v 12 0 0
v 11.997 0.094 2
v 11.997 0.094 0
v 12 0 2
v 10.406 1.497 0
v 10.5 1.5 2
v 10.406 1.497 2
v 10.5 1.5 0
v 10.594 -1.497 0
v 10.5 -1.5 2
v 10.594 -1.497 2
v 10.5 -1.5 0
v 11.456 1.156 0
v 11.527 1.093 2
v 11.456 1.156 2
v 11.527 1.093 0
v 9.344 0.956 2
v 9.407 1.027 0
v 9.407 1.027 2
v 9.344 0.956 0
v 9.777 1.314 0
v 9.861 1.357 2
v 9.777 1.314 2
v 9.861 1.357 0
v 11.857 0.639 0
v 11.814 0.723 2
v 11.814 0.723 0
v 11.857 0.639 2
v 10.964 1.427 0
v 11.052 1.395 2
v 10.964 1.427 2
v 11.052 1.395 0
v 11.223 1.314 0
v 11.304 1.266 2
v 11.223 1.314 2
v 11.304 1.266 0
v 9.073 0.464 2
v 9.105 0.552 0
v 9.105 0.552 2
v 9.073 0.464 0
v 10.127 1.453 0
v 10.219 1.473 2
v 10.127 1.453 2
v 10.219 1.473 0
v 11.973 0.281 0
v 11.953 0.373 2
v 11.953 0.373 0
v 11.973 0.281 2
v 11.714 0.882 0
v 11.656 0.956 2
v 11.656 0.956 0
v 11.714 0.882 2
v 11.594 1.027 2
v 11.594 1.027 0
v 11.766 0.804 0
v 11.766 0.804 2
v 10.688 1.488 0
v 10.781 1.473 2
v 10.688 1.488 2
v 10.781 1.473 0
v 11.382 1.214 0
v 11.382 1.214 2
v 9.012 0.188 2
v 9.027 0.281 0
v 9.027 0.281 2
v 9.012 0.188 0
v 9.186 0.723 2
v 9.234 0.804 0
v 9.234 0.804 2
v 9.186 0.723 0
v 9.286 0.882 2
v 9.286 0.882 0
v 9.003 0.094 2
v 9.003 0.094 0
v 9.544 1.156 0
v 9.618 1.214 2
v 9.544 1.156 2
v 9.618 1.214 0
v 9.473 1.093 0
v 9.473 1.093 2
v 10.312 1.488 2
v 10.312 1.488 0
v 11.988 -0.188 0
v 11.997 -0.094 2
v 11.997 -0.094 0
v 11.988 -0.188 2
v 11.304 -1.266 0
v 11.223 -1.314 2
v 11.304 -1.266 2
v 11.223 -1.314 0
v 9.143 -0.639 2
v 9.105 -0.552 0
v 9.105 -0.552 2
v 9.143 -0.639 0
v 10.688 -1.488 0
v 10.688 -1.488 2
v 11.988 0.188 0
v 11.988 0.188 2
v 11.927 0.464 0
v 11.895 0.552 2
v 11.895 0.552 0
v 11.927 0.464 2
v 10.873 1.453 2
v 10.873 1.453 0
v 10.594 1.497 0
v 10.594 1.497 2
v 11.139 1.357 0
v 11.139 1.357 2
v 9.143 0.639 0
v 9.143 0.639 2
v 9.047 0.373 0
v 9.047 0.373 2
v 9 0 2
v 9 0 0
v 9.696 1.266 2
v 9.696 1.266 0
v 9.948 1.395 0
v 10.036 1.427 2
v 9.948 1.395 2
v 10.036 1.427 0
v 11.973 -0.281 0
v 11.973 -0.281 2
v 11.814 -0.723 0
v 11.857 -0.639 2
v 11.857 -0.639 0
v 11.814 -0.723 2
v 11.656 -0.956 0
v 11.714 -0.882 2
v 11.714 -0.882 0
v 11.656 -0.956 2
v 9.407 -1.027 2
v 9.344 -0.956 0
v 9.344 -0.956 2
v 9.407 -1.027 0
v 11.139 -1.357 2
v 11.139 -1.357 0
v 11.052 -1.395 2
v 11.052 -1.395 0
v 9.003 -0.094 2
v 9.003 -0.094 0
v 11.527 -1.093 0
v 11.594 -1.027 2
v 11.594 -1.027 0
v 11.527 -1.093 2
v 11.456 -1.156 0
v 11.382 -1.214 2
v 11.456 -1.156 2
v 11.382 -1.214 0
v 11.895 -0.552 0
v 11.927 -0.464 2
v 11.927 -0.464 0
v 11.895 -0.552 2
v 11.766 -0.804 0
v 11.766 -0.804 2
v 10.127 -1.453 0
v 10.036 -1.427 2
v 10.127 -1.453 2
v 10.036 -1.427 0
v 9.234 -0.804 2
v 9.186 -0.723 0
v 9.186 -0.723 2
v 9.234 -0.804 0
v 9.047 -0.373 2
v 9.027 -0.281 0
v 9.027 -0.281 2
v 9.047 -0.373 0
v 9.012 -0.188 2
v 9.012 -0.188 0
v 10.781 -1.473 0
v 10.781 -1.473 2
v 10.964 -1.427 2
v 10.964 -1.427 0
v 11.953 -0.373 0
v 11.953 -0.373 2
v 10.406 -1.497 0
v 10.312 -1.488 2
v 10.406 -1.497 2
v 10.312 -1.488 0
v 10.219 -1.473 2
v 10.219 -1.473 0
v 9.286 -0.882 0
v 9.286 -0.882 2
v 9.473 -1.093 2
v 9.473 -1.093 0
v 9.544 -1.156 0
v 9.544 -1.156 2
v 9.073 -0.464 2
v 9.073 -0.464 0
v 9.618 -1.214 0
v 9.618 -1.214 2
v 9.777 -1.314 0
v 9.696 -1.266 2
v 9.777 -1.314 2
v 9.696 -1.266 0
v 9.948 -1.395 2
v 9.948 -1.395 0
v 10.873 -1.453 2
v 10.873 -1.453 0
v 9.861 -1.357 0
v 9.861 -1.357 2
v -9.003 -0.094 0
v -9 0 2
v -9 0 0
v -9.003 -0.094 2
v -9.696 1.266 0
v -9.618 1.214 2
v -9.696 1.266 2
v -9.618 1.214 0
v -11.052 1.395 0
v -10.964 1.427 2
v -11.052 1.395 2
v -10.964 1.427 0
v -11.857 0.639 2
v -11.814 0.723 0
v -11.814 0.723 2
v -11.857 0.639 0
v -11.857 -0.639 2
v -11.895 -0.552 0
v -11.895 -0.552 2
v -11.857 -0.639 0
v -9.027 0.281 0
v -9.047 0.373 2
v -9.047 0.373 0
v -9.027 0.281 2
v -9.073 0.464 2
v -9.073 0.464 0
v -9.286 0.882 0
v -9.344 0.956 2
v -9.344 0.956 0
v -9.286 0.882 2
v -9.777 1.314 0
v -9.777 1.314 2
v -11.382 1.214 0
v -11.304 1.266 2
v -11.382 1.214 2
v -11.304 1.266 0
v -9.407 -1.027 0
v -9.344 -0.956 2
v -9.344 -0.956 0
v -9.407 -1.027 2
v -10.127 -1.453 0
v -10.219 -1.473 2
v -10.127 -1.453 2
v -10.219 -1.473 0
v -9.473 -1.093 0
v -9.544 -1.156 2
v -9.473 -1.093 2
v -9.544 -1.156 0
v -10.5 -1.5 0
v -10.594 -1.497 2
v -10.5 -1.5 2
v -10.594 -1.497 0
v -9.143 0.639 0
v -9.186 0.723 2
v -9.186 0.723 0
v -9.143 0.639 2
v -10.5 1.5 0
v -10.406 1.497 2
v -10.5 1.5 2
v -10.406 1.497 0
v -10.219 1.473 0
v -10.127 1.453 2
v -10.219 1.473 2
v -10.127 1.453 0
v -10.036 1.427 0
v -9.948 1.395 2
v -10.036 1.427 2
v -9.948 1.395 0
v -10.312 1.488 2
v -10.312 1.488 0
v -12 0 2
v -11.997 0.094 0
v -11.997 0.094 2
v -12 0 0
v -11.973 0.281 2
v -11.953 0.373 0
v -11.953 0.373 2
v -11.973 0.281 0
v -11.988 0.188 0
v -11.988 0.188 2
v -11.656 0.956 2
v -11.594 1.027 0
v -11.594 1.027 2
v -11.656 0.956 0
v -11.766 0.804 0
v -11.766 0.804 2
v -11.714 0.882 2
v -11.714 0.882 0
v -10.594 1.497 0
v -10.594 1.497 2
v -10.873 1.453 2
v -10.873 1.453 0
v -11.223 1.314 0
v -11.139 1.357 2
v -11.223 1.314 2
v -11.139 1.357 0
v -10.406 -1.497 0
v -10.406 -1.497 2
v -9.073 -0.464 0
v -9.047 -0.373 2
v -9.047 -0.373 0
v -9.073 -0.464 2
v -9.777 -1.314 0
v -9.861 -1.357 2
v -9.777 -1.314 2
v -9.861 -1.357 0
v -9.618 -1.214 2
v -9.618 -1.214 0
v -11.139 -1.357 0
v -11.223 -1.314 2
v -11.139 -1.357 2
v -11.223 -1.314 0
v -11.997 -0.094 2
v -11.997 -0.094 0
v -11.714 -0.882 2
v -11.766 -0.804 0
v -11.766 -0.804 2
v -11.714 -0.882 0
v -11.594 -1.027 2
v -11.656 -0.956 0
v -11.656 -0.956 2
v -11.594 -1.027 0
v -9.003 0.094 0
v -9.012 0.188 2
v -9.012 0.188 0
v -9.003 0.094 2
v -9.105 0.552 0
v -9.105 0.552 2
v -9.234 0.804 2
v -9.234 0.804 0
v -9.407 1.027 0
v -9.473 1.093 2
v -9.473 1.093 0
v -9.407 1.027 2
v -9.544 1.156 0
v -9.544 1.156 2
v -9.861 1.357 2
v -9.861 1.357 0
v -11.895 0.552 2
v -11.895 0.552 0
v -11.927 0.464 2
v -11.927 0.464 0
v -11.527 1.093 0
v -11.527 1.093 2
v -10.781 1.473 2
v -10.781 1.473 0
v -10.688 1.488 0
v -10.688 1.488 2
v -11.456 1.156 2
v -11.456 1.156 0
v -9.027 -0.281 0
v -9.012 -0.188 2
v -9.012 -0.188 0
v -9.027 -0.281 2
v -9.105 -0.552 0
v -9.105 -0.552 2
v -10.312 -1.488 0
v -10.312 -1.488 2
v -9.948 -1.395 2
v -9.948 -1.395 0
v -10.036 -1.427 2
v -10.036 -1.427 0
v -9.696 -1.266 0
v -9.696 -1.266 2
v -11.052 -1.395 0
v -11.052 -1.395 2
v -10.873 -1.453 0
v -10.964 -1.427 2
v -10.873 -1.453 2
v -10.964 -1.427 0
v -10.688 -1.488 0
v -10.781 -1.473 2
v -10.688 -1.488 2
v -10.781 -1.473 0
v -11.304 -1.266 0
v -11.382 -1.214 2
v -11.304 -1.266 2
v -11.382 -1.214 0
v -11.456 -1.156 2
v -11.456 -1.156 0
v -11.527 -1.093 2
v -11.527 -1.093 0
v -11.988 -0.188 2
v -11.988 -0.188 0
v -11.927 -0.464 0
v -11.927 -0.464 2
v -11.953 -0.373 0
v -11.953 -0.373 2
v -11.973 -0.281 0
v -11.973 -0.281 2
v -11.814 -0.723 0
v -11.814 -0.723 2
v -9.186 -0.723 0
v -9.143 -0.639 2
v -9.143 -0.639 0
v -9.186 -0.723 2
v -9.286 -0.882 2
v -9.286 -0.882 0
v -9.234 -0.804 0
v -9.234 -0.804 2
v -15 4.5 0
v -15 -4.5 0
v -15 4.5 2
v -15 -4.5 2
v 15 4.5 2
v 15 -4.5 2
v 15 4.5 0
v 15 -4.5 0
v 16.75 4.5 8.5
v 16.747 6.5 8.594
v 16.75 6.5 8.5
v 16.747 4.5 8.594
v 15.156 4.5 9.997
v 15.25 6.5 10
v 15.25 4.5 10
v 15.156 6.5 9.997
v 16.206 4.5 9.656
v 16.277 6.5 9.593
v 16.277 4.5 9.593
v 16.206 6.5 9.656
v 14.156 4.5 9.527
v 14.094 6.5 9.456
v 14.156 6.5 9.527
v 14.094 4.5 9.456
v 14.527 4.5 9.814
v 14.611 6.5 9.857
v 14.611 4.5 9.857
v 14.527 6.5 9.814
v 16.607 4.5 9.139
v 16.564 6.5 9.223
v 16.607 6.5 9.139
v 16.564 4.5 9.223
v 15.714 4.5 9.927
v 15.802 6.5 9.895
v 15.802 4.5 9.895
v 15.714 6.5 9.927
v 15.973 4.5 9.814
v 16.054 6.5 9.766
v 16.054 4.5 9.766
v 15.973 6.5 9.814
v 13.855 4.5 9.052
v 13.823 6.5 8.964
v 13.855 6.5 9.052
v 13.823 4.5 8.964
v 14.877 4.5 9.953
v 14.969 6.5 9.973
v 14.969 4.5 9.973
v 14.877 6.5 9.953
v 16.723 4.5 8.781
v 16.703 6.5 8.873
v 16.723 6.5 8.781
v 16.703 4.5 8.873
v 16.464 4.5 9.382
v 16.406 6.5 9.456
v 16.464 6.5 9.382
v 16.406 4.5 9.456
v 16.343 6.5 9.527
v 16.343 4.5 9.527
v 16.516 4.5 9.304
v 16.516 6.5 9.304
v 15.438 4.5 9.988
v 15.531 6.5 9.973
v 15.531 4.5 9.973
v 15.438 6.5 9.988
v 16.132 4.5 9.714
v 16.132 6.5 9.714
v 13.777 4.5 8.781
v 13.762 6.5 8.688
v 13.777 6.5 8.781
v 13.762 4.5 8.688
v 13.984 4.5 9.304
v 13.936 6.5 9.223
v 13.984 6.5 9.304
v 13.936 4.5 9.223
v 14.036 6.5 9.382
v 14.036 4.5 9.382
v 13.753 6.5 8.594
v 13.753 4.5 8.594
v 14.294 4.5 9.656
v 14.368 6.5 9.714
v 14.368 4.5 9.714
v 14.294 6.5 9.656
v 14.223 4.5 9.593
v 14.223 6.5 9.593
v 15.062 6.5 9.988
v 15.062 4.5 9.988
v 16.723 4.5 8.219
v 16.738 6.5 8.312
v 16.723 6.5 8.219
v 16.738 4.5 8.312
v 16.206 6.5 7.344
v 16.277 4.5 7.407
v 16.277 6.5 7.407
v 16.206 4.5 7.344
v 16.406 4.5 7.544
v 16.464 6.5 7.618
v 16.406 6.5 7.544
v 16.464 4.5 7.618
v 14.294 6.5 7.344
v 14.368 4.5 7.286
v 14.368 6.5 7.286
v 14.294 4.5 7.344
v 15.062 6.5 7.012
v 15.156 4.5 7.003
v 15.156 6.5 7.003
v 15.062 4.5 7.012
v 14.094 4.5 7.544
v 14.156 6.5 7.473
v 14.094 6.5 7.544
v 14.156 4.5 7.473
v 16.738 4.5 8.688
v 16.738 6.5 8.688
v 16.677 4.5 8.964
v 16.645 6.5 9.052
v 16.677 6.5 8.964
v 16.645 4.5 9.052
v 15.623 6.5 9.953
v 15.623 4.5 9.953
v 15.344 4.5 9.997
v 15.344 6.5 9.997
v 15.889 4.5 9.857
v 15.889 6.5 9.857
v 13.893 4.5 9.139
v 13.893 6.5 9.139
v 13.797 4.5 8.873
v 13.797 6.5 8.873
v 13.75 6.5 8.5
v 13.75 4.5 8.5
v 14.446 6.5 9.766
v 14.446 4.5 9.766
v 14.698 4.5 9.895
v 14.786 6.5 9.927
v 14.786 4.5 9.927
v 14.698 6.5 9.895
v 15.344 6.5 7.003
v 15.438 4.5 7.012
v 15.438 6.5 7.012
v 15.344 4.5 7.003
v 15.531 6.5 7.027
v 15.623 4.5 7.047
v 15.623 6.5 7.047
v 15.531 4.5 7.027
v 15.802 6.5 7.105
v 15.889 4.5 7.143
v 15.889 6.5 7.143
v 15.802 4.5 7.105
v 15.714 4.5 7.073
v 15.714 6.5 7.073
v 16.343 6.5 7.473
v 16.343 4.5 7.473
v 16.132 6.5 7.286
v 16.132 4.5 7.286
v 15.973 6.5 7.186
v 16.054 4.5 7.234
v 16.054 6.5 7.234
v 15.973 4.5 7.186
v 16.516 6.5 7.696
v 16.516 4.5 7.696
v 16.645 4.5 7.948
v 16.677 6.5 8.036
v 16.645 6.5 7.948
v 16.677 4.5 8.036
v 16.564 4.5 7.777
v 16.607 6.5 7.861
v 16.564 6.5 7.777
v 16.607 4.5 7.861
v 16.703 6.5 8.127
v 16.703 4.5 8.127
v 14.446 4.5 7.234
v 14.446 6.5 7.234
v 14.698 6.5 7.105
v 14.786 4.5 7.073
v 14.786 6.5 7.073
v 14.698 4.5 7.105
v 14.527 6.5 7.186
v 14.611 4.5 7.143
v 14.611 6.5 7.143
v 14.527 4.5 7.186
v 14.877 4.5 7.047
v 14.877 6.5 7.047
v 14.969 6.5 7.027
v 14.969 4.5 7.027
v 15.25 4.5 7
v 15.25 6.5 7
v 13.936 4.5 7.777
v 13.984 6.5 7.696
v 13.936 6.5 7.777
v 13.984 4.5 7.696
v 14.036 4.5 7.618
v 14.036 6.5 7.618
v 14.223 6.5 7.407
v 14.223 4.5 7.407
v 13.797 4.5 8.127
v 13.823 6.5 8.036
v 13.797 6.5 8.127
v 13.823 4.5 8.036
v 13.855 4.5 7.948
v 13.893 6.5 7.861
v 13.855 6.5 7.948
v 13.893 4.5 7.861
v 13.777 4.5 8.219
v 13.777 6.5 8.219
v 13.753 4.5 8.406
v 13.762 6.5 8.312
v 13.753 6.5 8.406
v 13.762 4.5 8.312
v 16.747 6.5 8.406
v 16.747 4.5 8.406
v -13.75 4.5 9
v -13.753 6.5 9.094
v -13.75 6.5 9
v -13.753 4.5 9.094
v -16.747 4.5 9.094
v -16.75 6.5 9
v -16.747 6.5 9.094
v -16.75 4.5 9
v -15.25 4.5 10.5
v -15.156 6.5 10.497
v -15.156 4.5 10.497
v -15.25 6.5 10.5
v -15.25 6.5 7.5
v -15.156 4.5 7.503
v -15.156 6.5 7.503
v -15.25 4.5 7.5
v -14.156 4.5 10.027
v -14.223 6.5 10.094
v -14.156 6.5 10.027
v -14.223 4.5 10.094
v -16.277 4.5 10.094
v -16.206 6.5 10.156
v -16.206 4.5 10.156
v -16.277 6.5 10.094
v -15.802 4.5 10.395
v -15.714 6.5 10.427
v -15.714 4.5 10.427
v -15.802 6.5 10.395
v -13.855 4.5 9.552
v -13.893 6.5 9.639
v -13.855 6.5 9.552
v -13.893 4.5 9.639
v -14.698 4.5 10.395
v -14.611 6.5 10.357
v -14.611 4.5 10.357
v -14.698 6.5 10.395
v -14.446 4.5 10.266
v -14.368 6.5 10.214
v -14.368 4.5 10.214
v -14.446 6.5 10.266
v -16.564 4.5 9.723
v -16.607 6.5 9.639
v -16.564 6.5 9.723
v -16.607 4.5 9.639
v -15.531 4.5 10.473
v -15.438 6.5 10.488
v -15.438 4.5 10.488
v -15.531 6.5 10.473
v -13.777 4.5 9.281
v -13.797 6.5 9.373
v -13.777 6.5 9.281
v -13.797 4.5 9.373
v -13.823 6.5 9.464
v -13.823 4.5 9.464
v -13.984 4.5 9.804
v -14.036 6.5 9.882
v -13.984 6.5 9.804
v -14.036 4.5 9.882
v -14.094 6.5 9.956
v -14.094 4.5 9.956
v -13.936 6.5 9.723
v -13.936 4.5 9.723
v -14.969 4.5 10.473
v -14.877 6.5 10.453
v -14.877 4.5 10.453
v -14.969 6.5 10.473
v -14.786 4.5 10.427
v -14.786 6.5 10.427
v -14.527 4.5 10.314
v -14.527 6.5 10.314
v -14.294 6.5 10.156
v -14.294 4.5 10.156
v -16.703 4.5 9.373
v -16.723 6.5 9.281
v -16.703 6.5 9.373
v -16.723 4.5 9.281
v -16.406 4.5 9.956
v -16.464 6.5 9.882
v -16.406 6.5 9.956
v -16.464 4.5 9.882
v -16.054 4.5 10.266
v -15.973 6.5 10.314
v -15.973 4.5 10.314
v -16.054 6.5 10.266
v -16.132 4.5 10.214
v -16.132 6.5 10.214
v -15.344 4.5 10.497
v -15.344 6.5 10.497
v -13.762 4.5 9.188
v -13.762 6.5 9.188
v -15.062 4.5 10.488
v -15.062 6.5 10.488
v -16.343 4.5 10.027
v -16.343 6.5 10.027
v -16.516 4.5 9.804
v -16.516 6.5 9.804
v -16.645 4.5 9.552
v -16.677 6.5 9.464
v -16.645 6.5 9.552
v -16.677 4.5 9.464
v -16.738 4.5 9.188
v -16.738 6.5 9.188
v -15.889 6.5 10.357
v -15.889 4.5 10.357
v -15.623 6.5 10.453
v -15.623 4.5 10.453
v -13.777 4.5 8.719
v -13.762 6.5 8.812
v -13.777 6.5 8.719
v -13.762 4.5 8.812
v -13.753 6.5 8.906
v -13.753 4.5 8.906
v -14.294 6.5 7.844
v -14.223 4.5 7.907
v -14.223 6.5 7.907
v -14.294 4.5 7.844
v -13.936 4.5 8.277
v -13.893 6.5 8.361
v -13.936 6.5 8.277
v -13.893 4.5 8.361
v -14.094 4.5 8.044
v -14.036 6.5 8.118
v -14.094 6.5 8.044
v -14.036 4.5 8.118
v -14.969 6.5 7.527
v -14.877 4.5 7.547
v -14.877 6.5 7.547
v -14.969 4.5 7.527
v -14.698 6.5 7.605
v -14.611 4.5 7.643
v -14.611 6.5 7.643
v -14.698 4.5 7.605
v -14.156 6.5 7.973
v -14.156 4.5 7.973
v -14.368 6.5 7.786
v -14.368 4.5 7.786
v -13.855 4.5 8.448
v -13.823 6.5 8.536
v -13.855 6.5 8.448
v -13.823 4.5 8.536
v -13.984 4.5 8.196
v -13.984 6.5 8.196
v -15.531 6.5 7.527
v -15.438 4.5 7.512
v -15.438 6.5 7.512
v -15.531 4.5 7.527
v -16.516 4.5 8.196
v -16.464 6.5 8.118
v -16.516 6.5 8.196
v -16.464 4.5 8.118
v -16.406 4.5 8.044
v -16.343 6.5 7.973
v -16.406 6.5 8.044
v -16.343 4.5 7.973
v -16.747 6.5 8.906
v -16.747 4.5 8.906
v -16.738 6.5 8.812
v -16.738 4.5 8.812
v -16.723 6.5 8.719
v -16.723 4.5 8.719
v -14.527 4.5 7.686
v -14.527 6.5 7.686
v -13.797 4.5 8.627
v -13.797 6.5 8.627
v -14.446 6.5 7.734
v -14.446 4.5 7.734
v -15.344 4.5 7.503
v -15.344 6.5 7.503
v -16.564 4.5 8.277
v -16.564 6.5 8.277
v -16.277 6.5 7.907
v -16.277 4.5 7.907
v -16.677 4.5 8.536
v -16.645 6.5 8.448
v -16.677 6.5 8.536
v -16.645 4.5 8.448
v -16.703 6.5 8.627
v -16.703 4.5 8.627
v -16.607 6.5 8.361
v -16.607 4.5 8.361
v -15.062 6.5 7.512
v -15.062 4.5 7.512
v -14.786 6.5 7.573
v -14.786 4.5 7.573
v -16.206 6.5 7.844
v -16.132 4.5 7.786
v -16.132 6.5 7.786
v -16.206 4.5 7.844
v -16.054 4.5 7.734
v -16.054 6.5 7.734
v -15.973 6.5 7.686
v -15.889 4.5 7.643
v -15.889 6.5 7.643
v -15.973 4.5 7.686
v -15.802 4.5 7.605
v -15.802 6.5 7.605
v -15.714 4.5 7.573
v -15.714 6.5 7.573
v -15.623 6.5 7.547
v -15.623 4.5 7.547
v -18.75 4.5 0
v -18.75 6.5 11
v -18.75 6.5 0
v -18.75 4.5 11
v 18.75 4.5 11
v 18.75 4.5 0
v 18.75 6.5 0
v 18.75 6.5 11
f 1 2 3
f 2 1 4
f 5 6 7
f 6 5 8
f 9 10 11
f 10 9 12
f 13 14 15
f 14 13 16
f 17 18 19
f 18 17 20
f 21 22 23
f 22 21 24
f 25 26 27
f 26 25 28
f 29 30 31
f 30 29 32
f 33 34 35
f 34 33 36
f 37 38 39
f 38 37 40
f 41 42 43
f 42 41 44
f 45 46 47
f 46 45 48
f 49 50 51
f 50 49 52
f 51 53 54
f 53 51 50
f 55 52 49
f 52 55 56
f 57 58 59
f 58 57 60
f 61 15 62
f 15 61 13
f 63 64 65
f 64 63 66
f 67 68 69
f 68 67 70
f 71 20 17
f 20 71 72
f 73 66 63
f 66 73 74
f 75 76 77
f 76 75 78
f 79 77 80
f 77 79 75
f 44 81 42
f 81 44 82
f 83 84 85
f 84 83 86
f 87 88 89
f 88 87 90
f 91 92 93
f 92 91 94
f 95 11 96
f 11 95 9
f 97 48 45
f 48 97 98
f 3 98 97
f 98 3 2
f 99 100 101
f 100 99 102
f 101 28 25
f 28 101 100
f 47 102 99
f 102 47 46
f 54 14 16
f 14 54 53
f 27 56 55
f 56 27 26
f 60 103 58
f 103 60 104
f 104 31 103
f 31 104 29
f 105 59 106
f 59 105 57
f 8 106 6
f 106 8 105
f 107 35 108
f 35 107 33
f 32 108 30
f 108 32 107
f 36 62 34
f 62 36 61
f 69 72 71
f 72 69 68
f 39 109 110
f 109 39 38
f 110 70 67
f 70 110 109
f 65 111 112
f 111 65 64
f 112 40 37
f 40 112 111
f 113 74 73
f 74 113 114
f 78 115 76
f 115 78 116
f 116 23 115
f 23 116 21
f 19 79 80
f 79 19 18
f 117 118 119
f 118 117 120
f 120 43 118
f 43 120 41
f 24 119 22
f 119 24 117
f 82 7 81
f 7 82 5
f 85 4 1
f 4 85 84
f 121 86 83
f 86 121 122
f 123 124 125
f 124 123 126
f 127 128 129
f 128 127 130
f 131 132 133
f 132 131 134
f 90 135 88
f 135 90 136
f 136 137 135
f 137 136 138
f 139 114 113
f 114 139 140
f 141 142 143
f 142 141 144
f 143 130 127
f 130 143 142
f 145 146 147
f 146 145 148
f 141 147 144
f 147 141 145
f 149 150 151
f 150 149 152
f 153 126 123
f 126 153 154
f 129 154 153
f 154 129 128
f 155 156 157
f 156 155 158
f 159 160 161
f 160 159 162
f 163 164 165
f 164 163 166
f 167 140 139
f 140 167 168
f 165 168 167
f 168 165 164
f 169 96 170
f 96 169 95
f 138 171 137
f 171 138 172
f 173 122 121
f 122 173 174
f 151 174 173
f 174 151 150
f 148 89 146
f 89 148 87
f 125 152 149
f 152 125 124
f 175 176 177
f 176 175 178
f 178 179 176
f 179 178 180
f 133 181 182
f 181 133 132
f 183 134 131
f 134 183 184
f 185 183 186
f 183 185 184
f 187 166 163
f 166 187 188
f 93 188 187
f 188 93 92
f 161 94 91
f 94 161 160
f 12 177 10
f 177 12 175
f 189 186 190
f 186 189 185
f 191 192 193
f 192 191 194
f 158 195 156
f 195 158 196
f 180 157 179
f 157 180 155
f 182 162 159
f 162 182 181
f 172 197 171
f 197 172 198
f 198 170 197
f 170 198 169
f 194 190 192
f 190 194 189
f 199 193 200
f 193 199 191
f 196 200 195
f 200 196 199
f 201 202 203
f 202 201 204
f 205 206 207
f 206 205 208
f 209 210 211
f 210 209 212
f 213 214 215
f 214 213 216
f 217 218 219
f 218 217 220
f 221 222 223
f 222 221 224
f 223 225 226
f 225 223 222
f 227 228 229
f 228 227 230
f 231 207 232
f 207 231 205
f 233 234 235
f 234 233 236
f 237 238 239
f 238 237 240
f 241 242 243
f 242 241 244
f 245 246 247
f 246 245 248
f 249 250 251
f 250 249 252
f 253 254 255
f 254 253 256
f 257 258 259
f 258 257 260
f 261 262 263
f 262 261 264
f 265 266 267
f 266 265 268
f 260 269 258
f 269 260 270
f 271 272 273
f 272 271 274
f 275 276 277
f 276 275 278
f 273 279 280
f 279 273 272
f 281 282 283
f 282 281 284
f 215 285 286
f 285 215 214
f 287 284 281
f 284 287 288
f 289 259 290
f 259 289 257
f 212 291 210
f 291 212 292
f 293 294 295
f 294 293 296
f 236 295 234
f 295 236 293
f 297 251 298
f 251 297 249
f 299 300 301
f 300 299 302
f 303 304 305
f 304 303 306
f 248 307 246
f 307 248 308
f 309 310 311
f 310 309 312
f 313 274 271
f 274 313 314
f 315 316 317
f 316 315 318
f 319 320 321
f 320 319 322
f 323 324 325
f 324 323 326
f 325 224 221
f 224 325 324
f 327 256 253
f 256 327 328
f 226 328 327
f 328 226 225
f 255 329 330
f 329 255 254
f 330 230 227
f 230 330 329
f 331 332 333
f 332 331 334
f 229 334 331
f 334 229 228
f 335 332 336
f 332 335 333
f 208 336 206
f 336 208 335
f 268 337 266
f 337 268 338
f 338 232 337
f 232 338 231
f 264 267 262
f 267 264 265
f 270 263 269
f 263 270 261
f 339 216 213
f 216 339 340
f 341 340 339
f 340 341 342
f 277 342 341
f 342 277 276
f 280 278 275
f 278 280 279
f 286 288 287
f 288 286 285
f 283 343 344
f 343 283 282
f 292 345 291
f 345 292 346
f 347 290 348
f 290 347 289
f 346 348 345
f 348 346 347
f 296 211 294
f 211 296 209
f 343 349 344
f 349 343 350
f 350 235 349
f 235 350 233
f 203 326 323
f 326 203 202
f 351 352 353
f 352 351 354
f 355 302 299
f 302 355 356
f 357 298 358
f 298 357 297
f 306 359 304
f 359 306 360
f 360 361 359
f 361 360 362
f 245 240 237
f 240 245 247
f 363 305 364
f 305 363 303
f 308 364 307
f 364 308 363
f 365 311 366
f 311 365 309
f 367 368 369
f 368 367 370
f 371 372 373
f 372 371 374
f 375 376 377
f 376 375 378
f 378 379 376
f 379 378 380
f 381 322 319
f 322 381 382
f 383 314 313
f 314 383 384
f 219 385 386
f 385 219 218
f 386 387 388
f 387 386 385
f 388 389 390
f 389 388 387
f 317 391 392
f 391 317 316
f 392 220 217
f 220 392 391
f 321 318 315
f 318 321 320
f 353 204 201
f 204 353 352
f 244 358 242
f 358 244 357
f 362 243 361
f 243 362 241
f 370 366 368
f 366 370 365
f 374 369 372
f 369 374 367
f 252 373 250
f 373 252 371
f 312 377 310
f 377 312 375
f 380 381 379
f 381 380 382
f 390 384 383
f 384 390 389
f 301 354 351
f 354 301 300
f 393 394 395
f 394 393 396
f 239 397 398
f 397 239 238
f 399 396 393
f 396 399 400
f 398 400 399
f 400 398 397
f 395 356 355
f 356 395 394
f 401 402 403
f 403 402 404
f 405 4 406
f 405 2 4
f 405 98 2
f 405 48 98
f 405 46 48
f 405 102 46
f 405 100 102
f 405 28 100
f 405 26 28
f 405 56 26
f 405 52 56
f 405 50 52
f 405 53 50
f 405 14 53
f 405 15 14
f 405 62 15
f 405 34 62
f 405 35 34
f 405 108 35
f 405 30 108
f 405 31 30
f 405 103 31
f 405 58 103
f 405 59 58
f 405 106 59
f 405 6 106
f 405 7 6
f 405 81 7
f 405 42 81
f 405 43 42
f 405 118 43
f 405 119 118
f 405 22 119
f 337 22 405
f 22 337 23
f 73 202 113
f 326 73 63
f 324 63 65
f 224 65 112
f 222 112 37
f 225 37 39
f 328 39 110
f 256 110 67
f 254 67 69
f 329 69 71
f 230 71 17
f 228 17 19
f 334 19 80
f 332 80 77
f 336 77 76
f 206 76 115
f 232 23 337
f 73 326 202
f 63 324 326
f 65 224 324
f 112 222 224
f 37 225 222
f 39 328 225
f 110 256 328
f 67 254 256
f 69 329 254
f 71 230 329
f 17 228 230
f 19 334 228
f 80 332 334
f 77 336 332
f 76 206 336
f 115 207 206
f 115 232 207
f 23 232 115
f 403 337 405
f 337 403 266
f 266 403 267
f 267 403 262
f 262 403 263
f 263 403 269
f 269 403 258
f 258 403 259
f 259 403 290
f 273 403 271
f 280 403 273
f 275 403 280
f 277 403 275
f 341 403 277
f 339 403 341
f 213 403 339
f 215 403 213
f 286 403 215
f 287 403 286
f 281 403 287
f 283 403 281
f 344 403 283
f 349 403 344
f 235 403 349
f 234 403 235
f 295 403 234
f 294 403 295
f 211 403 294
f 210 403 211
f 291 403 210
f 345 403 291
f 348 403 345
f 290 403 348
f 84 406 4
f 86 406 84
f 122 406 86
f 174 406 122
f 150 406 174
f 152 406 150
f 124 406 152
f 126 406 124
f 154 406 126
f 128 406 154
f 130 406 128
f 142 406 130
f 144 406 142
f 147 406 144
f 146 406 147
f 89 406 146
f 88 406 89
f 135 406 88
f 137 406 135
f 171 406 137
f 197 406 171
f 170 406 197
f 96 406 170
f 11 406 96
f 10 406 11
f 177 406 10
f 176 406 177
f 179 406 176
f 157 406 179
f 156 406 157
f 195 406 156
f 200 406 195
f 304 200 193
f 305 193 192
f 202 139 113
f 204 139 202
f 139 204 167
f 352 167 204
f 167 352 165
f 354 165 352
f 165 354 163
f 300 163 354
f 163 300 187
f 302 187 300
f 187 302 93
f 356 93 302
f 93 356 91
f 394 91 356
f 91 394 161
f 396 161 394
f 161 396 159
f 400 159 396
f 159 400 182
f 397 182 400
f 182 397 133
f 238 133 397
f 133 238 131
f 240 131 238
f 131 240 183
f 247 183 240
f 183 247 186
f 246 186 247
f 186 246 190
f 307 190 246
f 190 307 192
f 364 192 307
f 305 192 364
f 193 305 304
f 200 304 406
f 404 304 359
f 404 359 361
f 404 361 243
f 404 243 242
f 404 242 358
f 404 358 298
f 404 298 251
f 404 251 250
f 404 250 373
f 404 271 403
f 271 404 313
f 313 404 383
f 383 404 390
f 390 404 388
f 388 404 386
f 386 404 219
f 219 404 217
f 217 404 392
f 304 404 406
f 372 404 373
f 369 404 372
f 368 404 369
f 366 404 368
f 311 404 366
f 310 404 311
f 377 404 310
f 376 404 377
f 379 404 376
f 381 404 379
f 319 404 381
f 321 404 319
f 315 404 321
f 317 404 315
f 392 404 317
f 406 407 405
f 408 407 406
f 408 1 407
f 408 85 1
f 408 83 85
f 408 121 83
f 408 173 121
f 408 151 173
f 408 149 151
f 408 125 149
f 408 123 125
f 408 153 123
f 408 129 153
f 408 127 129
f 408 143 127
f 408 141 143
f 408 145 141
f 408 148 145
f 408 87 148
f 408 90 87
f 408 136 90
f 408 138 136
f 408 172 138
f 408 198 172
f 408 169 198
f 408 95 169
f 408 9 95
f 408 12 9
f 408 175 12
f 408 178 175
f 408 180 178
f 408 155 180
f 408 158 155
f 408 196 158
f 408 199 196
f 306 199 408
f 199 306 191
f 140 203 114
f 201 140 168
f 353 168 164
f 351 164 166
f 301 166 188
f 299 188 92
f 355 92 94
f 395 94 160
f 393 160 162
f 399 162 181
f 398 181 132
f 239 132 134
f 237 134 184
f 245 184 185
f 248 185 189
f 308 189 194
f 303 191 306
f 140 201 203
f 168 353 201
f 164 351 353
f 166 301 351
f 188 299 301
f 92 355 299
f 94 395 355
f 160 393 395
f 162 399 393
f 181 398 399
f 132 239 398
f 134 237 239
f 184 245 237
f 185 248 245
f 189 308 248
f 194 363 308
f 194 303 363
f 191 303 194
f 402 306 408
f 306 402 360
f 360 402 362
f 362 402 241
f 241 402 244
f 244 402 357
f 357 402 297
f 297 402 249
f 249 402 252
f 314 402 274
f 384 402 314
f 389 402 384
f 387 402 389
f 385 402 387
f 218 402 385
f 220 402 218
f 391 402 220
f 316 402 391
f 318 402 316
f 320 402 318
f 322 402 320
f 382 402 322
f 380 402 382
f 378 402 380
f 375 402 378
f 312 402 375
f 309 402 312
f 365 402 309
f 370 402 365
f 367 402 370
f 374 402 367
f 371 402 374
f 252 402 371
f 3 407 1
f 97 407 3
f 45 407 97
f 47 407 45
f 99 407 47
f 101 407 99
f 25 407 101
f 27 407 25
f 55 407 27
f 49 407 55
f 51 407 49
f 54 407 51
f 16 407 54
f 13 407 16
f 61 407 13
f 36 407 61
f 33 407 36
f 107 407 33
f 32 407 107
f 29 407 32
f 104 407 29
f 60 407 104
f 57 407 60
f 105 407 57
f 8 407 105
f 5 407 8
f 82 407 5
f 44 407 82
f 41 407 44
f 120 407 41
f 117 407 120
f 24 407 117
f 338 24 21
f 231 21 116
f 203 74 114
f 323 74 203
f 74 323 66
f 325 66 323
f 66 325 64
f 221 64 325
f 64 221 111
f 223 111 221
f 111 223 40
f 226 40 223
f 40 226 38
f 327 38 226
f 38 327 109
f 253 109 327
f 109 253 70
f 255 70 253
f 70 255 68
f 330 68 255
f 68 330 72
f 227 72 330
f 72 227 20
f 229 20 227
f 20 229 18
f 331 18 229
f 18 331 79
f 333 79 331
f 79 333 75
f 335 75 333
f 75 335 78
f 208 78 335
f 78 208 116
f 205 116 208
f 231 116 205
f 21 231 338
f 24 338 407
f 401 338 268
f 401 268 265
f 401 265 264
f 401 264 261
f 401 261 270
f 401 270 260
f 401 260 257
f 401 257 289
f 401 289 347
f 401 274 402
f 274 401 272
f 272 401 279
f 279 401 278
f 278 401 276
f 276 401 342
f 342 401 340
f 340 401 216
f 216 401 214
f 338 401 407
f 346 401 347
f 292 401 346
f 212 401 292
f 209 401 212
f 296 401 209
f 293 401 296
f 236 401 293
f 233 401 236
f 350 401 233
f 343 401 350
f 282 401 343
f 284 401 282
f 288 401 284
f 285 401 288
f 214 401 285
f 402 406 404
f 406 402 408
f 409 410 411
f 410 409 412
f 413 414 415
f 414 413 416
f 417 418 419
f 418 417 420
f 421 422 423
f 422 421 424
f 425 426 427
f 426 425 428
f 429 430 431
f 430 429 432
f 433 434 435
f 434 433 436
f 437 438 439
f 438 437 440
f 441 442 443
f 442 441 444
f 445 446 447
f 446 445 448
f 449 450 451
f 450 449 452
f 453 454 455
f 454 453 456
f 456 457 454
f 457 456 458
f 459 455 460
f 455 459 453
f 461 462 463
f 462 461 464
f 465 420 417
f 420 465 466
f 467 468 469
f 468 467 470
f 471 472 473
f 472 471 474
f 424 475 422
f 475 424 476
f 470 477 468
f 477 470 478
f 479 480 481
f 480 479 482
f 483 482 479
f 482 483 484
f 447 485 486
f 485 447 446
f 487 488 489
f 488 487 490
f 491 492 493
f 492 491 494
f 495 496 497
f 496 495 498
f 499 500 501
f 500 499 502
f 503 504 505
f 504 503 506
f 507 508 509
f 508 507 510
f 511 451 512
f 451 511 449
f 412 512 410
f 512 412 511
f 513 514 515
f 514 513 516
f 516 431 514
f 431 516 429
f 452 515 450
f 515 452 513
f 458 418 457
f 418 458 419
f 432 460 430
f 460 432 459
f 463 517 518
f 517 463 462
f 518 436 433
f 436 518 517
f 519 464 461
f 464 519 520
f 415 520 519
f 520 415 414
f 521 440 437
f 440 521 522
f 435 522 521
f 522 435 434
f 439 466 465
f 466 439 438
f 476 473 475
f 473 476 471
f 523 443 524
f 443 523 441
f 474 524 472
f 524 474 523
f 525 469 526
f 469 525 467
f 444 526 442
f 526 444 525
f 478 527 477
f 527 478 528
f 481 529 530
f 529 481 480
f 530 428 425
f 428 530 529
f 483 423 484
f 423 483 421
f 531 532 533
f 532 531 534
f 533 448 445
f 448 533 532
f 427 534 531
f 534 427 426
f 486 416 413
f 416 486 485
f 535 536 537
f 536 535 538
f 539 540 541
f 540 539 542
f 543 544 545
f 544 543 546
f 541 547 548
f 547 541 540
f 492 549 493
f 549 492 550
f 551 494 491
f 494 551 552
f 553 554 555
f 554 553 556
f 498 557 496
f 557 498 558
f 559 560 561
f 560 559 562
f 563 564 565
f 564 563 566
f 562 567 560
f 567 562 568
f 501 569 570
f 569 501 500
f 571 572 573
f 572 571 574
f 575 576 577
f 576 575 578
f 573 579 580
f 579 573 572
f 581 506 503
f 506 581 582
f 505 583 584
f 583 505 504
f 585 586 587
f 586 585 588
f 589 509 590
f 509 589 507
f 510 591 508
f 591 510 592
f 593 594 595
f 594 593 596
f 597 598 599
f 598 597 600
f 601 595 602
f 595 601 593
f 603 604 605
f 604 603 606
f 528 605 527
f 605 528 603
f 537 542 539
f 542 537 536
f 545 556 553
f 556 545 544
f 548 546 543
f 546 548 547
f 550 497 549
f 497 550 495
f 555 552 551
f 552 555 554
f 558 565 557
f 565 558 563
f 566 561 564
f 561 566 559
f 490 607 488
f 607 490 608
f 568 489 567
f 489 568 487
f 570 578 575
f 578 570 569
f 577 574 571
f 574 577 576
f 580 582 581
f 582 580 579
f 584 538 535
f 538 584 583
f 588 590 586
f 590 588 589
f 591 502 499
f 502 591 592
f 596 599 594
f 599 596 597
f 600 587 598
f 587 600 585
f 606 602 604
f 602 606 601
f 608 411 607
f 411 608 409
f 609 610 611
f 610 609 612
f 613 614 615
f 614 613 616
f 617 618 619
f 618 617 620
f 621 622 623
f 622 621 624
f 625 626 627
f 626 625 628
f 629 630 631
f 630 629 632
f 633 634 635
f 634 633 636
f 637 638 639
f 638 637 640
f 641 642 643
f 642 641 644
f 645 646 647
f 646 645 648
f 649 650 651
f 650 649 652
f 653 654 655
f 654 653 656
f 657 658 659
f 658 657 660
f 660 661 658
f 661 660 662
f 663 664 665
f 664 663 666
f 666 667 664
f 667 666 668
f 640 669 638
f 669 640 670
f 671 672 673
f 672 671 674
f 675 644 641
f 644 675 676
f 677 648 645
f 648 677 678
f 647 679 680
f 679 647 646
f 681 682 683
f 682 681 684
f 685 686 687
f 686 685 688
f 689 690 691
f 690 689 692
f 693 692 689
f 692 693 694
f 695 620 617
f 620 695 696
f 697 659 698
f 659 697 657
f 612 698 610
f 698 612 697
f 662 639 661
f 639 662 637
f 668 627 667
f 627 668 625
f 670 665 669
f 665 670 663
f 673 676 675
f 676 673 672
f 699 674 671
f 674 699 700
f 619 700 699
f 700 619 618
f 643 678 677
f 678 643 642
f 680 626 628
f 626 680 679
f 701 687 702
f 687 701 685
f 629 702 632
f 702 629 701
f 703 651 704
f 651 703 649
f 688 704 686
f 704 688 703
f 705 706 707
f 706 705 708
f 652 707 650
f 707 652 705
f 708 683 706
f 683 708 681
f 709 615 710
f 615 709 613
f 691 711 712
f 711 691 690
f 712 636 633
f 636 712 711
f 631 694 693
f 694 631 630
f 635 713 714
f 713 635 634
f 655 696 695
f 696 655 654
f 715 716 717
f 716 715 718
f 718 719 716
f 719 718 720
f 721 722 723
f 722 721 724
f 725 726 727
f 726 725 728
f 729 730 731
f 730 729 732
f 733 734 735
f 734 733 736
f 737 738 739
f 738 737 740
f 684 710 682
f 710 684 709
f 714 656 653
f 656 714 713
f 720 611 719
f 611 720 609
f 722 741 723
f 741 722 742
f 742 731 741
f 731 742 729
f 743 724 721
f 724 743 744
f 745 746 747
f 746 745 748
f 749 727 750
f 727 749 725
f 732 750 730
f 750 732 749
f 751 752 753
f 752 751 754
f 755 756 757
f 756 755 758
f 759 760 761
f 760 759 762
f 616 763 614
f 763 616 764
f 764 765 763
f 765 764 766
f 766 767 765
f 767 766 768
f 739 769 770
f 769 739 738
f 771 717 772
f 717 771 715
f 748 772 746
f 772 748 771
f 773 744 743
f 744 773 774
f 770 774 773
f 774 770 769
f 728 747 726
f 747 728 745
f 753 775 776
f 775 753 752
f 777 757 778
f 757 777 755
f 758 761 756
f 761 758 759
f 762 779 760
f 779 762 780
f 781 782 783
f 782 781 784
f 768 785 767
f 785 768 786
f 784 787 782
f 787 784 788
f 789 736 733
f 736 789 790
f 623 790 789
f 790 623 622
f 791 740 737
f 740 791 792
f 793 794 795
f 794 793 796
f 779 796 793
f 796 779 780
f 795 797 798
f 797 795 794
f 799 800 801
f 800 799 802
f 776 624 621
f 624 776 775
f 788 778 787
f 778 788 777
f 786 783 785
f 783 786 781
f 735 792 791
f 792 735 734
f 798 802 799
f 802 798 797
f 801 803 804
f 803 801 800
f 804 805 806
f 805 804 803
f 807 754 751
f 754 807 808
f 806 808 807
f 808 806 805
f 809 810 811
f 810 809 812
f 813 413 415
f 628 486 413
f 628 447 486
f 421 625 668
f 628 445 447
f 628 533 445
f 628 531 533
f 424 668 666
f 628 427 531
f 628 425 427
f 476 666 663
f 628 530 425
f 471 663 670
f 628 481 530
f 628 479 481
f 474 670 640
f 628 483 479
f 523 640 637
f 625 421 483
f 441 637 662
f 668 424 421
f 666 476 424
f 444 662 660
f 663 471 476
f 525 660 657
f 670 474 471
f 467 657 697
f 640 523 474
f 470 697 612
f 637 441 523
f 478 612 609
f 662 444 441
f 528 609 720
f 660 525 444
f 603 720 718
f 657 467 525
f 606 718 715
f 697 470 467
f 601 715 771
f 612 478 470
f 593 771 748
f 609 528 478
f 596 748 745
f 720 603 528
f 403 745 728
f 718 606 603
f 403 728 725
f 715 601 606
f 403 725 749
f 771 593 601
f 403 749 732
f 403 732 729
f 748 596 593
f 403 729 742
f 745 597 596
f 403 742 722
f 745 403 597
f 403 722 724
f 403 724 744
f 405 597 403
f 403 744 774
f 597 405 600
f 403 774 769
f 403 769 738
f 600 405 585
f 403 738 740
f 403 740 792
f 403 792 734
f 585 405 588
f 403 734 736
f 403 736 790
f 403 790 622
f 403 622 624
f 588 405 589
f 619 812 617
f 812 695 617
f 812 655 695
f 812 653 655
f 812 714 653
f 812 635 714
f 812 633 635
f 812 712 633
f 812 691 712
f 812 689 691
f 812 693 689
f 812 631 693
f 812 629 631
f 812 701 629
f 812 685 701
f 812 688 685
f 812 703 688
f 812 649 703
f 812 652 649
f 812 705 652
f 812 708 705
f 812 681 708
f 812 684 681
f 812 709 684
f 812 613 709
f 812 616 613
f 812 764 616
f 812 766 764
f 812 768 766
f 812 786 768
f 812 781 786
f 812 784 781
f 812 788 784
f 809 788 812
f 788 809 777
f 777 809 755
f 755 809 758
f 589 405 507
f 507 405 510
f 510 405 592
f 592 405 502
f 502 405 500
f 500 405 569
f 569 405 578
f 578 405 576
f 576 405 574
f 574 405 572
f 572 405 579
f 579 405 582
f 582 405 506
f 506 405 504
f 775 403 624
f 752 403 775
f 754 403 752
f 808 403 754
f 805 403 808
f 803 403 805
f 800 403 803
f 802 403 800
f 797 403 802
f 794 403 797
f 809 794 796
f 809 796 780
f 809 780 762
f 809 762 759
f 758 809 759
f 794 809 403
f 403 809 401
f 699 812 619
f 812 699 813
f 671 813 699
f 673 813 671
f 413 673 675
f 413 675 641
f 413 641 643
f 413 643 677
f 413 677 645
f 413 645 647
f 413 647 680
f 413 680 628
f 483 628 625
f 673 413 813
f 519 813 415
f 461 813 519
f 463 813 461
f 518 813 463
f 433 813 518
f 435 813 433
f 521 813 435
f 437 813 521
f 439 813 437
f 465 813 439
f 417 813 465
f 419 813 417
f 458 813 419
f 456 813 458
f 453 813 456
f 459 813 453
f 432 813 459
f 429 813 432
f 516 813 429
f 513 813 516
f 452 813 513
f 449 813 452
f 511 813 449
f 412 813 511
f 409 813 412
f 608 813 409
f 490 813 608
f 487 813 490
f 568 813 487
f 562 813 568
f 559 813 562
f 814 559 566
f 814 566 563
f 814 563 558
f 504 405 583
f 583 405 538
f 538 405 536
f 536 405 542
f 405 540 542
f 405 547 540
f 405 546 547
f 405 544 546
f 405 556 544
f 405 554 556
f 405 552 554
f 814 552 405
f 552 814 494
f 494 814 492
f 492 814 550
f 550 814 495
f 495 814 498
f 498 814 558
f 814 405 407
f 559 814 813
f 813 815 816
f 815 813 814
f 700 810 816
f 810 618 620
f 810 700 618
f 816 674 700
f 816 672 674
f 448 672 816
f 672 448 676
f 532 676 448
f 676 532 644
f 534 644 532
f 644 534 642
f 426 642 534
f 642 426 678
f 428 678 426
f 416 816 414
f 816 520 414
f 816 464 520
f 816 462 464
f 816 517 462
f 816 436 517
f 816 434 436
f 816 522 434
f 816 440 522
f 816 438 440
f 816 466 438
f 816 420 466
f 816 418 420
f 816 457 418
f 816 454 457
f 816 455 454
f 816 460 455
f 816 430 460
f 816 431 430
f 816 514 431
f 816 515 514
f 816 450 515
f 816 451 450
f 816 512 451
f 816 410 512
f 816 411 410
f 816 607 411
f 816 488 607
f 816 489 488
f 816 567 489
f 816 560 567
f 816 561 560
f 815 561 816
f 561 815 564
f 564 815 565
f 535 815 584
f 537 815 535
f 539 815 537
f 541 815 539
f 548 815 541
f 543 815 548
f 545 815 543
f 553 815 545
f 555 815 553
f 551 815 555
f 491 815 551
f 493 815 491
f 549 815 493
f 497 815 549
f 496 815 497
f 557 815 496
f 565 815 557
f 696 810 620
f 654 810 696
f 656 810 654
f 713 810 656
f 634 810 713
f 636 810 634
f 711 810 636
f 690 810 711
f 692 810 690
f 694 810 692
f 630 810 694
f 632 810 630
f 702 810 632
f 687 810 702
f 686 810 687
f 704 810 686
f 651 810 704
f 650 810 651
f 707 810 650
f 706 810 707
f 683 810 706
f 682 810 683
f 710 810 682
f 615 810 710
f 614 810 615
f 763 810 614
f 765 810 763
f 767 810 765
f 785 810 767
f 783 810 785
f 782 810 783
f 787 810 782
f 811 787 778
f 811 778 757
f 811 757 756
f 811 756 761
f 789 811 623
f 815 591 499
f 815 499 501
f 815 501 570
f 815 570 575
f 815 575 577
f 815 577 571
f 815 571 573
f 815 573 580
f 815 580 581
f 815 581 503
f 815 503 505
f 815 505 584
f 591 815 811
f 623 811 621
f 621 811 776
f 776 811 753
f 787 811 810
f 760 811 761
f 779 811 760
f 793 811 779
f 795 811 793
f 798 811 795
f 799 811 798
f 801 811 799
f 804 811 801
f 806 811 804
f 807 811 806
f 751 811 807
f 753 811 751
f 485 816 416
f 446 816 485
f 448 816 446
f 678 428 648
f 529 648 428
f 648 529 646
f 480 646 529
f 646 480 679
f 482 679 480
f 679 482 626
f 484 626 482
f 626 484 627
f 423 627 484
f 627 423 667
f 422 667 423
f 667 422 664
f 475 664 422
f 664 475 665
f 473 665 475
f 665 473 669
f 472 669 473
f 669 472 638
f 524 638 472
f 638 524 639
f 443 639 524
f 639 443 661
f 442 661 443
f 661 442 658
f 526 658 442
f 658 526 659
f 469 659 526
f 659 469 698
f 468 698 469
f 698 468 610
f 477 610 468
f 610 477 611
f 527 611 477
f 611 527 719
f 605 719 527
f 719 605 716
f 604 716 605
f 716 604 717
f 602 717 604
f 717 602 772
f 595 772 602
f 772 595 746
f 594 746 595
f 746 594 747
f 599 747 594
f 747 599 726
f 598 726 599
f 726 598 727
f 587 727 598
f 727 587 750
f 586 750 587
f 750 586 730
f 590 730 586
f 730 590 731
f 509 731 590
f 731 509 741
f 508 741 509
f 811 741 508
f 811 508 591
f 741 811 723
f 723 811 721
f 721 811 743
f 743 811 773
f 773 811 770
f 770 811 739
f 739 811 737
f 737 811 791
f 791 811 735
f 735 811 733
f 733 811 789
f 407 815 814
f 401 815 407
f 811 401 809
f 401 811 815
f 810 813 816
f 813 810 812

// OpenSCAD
//
//      <--------------->
//     
//   ________________________


entre_axe_plate = 21;
plate_hole_rad = 1.5;
side = 3;
thick = 2;

entre_axe_led = 30.5;
led_hole_rad = 1.5;
led_side = 2;
led_side_top = 1;
led_height = 10;

long_side = entre_axe_plate+2*(plate_hole_rad + side);
short_side = 2*(plate_hole_rad+side);
translate([0, 0, thick/2])
    difference() {
        cube([long_side, short_side, thick], center=true);
        union() {
            translate([entre_axe_plate/2, 0, 0])
                cylinder(h = thick+2, r=plate_hole_rad, center = true, $fn=100);
            translate([-entre_axe_plate/2, 0, 0])
                cylinder(h = thick+2, r=plate_hole_rad, center = true, $fn=100);
        }
    }

led_long_side = entre_axe_led + 2 * (led_hole_rad + led_side);
led_short_side = led_height + led_side_top;
translate([0, (thick+short_side)/2, led_short_side/2])
    rotate([90, 0, 0]) {
        difference() {
            cube([led_long_side, led_short_side, thick], center=true);
            union() {
                translate([entre_axe_led/2, (led_short_side/2)-led_hole_rad-led_side_top, 0])
                    cylinder(h = thick+2, r=led_hole_rad, center = true, $fn=100);
                translate([-entre_axe_led/2, (led_height/2)-led_hole_rad, 0])
                    cylinder(h = thick+2, r=led_hole_rad, center = true, $fn=100);
            }
        }
    }
     
